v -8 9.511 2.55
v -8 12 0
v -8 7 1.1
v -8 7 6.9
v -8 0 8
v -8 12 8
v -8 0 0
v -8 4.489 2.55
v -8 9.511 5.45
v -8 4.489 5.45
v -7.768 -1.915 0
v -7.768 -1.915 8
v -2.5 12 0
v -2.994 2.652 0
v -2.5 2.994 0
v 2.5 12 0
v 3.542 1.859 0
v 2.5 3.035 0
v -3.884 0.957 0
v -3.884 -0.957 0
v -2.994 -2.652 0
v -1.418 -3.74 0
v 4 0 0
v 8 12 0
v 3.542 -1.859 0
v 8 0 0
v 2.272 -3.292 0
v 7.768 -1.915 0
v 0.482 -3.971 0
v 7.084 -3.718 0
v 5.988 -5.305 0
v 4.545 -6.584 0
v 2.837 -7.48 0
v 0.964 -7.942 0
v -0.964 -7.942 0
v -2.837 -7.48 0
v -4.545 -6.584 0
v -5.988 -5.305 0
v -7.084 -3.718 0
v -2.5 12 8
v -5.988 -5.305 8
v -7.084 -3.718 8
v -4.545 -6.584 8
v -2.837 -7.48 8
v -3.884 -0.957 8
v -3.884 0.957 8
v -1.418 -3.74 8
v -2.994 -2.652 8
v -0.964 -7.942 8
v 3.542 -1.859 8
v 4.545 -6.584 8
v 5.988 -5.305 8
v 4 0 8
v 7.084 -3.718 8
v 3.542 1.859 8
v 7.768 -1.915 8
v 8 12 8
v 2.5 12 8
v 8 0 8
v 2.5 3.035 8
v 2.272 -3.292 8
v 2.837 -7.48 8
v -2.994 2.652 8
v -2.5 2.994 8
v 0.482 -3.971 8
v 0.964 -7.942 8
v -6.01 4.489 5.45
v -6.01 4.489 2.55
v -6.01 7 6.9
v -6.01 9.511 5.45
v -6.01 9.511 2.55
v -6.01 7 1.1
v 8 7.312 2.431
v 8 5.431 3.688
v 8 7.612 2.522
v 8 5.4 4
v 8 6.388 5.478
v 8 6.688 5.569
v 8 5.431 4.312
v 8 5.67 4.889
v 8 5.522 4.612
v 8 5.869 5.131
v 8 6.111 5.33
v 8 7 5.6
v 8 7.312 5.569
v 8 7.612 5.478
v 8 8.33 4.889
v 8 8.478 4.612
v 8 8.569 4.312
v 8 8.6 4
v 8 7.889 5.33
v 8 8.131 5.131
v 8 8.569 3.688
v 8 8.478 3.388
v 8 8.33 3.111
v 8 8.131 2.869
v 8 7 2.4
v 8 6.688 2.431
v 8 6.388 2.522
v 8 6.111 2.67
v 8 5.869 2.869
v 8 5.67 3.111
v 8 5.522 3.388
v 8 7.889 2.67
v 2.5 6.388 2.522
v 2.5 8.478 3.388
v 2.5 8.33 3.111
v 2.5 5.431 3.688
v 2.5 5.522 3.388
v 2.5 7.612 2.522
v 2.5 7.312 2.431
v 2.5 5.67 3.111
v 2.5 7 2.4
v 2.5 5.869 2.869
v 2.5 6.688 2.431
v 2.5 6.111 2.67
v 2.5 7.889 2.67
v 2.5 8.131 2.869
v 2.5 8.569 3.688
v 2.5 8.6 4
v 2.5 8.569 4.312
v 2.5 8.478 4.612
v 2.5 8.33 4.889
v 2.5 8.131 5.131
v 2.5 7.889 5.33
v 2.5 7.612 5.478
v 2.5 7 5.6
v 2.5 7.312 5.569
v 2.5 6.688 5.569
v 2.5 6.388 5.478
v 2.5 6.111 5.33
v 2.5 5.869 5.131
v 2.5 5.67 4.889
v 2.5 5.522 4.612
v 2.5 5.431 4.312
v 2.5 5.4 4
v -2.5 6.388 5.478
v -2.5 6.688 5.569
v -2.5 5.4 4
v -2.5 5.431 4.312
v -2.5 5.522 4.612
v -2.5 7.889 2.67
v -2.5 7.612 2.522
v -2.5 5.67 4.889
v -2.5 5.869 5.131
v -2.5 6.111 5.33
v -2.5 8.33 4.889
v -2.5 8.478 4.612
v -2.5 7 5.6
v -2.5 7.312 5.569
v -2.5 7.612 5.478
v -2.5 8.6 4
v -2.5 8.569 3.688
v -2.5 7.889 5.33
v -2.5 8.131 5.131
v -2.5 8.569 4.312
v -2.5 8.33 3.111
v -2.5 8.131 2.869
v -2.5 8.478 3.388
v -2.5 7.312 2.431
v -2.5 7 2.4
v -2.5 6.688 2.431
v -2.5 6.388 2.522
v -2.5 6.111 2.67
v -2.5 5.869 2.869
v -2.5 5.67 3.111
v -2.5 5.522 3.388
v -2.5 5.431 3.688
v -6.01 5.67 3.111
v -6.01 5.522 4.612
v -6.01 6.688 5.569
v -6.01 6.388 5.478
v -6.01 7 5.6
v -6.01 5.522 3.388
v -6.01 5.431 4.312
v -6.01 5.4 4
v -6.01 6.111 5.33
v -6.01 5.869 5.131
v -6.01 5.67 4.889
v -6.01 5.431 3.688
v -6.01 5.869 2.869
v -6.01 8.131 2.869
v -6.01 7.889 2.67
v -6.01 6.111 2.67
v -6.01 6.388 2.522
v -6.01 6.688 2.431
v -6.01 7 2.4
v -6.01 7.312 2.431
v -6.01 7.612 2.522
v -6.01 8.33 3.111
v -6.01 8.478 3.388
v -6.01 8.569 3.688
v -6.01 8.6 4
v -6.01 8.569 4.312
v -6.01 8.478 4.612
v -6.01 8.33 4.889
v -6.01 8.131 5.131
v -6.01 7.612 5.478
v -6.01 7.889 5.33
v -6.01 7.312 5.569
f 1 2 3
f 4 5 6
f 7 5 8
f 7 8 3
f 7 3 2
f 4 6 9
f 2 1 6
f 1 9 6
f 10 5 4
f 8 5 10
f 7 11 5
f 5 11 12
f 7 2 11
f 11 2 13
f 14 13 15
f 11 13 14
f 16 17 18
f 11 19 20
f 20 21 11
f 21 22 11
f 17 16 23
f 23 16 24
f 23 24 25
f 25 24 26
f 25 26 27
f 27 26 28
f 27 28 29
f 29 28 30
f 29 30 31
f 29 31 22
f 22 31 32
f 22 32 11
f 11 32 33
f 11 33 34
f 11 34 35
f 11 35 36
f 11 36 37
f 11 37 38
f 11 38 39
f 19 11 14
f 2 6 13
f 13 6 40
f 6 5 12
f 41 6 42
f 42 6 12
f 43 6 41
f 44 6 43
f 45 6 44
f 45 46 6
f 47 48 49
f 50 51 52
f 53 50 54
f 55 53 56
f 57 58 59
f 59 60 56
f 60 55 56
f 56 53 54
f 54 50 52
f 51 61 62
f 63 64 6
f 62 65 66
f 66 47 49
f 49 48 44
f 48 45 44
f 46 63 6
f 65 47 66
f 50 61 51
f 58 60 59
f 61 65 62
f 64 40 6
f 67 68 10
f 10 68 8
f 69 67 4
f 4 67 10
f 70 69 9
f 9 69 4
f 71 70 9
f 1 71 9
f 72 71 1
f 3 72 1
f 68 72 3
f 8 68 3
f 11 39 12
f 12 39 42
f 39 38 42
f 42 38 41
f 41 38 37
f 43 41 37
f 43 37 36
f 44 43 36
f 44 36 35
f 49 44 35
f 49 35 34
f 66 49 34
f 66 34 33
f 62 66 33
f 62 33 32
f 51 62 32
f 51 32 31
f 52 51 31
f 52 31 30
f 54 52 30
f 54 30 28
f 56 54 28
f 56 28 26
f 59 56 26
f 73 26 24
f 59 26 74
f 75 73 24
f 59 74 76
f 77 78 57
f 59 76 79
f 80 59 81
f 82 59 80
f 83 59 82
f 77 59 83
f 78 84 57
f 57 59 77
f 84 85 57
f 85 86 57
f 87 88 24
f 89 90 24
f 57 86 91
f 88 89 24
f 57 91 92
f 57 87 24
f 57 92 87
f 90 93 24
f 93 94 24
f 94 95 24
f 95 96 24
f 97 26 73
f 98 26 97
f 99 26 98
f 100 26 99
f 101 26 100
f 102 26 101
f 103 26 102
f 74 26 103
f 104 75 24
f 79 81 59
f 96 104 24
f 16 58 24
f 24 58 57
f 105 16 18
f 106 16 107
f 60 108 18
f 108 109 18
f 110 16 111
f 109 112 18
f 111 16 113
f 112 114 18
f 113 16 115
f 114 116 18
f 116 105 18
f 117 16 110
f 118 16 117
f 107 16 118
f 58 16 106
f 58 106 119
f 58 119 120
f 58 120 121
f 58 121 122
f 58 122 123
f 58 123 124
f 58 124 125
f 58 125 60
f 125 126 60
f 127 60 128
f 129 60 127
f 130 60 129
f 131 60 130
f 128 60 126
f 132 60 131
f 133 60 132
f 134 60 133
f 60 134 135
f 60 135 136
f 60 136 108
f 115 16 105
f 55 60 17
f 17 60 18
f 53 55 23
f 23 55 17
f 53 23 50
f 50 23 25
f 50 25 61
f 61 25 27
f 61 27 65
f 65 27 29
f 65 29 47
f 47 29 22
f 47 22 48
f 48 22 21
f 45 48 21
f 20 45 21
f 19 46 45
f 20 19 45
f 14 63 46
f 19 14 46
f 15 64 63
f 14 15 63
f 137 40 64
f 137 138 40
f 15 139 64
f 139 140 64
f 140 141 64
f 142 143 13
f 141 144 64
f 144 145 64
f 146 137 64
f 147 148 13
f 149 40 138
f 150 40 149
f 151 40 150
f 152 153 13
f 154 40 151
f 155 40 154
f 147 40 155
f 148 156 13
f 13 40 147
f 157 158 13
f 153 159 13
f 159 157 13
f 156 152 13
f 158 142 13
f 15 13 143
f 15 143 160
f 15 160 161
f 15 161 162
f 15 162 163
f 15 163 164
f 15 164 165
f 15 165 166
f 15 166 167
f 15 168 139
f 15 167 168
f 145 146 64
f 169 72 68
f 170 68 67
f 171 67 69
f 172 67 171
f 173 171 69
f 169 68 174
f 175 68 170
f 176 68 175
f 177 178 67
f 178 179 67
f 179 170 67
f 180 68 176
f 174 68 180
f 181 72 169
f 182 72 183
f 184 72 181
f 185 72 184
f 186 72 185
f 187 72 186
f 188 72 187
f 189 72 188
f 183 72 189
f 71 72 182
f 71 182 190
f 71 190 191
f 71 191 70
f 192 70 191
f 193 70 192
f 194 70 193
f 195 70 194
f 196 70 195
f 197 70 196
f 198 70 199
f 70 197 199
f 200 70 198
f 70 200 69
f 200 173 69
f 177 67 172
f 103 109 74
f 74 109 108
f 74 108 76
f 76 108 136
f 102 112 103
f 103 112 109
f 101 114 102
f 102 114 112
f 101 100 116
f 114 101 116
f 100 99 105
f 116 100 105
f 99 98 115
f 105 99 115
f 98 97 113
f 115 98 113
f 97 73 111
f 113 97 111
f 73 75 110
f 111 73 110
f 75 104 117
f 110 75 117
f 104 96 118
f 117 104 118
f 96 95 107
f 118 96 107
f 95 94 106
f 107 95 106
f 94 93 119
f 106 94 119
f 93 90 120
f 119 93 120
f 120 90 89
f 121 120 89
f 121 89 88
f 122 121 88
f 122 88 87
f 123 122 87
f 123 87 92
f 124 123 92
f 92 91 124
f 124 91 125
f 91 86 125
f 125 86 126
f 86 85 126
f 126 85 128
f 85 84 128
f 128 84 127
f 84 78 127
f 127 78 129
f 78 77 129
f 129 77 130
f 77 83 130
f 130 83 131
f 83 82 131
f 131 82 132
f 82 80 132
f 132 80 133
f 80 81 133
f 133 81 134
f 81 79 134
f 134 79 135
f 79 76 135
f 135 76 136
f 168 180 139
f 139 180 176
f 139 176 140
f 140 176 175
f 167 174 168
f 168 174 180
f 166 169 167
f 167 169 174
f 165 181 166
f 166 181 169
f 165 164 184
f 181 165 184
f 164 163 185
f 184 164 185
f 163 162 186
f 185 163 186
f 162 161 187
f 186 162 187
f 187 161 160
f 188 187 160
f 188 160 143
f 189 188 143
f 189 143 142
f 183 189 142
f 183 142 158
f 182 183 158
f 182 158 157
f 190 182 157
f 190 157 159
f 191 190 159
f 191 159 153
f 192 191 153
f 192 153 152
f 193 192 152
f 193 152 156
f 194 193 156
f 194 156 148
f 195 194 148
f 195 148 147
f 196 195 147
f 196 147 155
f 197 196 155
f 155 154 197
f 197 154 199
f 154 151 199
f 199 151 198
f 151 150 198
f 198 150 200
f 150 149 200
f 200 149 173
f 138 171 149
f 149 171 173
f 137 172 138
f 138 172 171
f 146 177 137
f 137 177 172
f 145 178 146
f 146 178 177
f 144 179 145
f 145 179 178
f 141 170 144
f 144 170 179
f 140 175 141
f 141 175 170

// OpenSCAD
bore=8;
height=8;
wall=4;
length=12;
hole_dist=7;

difference(){
	union(){
		cylinder(h=height,r=(bore/2)+wall);
		translate([0,length/2,height/2]) cube([bore+2*wall,length,height],center=true);
	}
	cylinder(h=height, r=bore/2);
	translate([0,length/2,height/2]) cube([bore-3,length,height], center=true);
	translate([0,hole_dist,height/2]) rotate([0,90,0]) cylinder(h=bore+2*wall+09.1,r=3.2/2, center=true, $fn=32);
	#translate([-bore/2-wall-0.01,hole_dist,height/2]) rotate([0,90,0]) cylinder(h=2,r=5.8/2, $fn=6);
}
